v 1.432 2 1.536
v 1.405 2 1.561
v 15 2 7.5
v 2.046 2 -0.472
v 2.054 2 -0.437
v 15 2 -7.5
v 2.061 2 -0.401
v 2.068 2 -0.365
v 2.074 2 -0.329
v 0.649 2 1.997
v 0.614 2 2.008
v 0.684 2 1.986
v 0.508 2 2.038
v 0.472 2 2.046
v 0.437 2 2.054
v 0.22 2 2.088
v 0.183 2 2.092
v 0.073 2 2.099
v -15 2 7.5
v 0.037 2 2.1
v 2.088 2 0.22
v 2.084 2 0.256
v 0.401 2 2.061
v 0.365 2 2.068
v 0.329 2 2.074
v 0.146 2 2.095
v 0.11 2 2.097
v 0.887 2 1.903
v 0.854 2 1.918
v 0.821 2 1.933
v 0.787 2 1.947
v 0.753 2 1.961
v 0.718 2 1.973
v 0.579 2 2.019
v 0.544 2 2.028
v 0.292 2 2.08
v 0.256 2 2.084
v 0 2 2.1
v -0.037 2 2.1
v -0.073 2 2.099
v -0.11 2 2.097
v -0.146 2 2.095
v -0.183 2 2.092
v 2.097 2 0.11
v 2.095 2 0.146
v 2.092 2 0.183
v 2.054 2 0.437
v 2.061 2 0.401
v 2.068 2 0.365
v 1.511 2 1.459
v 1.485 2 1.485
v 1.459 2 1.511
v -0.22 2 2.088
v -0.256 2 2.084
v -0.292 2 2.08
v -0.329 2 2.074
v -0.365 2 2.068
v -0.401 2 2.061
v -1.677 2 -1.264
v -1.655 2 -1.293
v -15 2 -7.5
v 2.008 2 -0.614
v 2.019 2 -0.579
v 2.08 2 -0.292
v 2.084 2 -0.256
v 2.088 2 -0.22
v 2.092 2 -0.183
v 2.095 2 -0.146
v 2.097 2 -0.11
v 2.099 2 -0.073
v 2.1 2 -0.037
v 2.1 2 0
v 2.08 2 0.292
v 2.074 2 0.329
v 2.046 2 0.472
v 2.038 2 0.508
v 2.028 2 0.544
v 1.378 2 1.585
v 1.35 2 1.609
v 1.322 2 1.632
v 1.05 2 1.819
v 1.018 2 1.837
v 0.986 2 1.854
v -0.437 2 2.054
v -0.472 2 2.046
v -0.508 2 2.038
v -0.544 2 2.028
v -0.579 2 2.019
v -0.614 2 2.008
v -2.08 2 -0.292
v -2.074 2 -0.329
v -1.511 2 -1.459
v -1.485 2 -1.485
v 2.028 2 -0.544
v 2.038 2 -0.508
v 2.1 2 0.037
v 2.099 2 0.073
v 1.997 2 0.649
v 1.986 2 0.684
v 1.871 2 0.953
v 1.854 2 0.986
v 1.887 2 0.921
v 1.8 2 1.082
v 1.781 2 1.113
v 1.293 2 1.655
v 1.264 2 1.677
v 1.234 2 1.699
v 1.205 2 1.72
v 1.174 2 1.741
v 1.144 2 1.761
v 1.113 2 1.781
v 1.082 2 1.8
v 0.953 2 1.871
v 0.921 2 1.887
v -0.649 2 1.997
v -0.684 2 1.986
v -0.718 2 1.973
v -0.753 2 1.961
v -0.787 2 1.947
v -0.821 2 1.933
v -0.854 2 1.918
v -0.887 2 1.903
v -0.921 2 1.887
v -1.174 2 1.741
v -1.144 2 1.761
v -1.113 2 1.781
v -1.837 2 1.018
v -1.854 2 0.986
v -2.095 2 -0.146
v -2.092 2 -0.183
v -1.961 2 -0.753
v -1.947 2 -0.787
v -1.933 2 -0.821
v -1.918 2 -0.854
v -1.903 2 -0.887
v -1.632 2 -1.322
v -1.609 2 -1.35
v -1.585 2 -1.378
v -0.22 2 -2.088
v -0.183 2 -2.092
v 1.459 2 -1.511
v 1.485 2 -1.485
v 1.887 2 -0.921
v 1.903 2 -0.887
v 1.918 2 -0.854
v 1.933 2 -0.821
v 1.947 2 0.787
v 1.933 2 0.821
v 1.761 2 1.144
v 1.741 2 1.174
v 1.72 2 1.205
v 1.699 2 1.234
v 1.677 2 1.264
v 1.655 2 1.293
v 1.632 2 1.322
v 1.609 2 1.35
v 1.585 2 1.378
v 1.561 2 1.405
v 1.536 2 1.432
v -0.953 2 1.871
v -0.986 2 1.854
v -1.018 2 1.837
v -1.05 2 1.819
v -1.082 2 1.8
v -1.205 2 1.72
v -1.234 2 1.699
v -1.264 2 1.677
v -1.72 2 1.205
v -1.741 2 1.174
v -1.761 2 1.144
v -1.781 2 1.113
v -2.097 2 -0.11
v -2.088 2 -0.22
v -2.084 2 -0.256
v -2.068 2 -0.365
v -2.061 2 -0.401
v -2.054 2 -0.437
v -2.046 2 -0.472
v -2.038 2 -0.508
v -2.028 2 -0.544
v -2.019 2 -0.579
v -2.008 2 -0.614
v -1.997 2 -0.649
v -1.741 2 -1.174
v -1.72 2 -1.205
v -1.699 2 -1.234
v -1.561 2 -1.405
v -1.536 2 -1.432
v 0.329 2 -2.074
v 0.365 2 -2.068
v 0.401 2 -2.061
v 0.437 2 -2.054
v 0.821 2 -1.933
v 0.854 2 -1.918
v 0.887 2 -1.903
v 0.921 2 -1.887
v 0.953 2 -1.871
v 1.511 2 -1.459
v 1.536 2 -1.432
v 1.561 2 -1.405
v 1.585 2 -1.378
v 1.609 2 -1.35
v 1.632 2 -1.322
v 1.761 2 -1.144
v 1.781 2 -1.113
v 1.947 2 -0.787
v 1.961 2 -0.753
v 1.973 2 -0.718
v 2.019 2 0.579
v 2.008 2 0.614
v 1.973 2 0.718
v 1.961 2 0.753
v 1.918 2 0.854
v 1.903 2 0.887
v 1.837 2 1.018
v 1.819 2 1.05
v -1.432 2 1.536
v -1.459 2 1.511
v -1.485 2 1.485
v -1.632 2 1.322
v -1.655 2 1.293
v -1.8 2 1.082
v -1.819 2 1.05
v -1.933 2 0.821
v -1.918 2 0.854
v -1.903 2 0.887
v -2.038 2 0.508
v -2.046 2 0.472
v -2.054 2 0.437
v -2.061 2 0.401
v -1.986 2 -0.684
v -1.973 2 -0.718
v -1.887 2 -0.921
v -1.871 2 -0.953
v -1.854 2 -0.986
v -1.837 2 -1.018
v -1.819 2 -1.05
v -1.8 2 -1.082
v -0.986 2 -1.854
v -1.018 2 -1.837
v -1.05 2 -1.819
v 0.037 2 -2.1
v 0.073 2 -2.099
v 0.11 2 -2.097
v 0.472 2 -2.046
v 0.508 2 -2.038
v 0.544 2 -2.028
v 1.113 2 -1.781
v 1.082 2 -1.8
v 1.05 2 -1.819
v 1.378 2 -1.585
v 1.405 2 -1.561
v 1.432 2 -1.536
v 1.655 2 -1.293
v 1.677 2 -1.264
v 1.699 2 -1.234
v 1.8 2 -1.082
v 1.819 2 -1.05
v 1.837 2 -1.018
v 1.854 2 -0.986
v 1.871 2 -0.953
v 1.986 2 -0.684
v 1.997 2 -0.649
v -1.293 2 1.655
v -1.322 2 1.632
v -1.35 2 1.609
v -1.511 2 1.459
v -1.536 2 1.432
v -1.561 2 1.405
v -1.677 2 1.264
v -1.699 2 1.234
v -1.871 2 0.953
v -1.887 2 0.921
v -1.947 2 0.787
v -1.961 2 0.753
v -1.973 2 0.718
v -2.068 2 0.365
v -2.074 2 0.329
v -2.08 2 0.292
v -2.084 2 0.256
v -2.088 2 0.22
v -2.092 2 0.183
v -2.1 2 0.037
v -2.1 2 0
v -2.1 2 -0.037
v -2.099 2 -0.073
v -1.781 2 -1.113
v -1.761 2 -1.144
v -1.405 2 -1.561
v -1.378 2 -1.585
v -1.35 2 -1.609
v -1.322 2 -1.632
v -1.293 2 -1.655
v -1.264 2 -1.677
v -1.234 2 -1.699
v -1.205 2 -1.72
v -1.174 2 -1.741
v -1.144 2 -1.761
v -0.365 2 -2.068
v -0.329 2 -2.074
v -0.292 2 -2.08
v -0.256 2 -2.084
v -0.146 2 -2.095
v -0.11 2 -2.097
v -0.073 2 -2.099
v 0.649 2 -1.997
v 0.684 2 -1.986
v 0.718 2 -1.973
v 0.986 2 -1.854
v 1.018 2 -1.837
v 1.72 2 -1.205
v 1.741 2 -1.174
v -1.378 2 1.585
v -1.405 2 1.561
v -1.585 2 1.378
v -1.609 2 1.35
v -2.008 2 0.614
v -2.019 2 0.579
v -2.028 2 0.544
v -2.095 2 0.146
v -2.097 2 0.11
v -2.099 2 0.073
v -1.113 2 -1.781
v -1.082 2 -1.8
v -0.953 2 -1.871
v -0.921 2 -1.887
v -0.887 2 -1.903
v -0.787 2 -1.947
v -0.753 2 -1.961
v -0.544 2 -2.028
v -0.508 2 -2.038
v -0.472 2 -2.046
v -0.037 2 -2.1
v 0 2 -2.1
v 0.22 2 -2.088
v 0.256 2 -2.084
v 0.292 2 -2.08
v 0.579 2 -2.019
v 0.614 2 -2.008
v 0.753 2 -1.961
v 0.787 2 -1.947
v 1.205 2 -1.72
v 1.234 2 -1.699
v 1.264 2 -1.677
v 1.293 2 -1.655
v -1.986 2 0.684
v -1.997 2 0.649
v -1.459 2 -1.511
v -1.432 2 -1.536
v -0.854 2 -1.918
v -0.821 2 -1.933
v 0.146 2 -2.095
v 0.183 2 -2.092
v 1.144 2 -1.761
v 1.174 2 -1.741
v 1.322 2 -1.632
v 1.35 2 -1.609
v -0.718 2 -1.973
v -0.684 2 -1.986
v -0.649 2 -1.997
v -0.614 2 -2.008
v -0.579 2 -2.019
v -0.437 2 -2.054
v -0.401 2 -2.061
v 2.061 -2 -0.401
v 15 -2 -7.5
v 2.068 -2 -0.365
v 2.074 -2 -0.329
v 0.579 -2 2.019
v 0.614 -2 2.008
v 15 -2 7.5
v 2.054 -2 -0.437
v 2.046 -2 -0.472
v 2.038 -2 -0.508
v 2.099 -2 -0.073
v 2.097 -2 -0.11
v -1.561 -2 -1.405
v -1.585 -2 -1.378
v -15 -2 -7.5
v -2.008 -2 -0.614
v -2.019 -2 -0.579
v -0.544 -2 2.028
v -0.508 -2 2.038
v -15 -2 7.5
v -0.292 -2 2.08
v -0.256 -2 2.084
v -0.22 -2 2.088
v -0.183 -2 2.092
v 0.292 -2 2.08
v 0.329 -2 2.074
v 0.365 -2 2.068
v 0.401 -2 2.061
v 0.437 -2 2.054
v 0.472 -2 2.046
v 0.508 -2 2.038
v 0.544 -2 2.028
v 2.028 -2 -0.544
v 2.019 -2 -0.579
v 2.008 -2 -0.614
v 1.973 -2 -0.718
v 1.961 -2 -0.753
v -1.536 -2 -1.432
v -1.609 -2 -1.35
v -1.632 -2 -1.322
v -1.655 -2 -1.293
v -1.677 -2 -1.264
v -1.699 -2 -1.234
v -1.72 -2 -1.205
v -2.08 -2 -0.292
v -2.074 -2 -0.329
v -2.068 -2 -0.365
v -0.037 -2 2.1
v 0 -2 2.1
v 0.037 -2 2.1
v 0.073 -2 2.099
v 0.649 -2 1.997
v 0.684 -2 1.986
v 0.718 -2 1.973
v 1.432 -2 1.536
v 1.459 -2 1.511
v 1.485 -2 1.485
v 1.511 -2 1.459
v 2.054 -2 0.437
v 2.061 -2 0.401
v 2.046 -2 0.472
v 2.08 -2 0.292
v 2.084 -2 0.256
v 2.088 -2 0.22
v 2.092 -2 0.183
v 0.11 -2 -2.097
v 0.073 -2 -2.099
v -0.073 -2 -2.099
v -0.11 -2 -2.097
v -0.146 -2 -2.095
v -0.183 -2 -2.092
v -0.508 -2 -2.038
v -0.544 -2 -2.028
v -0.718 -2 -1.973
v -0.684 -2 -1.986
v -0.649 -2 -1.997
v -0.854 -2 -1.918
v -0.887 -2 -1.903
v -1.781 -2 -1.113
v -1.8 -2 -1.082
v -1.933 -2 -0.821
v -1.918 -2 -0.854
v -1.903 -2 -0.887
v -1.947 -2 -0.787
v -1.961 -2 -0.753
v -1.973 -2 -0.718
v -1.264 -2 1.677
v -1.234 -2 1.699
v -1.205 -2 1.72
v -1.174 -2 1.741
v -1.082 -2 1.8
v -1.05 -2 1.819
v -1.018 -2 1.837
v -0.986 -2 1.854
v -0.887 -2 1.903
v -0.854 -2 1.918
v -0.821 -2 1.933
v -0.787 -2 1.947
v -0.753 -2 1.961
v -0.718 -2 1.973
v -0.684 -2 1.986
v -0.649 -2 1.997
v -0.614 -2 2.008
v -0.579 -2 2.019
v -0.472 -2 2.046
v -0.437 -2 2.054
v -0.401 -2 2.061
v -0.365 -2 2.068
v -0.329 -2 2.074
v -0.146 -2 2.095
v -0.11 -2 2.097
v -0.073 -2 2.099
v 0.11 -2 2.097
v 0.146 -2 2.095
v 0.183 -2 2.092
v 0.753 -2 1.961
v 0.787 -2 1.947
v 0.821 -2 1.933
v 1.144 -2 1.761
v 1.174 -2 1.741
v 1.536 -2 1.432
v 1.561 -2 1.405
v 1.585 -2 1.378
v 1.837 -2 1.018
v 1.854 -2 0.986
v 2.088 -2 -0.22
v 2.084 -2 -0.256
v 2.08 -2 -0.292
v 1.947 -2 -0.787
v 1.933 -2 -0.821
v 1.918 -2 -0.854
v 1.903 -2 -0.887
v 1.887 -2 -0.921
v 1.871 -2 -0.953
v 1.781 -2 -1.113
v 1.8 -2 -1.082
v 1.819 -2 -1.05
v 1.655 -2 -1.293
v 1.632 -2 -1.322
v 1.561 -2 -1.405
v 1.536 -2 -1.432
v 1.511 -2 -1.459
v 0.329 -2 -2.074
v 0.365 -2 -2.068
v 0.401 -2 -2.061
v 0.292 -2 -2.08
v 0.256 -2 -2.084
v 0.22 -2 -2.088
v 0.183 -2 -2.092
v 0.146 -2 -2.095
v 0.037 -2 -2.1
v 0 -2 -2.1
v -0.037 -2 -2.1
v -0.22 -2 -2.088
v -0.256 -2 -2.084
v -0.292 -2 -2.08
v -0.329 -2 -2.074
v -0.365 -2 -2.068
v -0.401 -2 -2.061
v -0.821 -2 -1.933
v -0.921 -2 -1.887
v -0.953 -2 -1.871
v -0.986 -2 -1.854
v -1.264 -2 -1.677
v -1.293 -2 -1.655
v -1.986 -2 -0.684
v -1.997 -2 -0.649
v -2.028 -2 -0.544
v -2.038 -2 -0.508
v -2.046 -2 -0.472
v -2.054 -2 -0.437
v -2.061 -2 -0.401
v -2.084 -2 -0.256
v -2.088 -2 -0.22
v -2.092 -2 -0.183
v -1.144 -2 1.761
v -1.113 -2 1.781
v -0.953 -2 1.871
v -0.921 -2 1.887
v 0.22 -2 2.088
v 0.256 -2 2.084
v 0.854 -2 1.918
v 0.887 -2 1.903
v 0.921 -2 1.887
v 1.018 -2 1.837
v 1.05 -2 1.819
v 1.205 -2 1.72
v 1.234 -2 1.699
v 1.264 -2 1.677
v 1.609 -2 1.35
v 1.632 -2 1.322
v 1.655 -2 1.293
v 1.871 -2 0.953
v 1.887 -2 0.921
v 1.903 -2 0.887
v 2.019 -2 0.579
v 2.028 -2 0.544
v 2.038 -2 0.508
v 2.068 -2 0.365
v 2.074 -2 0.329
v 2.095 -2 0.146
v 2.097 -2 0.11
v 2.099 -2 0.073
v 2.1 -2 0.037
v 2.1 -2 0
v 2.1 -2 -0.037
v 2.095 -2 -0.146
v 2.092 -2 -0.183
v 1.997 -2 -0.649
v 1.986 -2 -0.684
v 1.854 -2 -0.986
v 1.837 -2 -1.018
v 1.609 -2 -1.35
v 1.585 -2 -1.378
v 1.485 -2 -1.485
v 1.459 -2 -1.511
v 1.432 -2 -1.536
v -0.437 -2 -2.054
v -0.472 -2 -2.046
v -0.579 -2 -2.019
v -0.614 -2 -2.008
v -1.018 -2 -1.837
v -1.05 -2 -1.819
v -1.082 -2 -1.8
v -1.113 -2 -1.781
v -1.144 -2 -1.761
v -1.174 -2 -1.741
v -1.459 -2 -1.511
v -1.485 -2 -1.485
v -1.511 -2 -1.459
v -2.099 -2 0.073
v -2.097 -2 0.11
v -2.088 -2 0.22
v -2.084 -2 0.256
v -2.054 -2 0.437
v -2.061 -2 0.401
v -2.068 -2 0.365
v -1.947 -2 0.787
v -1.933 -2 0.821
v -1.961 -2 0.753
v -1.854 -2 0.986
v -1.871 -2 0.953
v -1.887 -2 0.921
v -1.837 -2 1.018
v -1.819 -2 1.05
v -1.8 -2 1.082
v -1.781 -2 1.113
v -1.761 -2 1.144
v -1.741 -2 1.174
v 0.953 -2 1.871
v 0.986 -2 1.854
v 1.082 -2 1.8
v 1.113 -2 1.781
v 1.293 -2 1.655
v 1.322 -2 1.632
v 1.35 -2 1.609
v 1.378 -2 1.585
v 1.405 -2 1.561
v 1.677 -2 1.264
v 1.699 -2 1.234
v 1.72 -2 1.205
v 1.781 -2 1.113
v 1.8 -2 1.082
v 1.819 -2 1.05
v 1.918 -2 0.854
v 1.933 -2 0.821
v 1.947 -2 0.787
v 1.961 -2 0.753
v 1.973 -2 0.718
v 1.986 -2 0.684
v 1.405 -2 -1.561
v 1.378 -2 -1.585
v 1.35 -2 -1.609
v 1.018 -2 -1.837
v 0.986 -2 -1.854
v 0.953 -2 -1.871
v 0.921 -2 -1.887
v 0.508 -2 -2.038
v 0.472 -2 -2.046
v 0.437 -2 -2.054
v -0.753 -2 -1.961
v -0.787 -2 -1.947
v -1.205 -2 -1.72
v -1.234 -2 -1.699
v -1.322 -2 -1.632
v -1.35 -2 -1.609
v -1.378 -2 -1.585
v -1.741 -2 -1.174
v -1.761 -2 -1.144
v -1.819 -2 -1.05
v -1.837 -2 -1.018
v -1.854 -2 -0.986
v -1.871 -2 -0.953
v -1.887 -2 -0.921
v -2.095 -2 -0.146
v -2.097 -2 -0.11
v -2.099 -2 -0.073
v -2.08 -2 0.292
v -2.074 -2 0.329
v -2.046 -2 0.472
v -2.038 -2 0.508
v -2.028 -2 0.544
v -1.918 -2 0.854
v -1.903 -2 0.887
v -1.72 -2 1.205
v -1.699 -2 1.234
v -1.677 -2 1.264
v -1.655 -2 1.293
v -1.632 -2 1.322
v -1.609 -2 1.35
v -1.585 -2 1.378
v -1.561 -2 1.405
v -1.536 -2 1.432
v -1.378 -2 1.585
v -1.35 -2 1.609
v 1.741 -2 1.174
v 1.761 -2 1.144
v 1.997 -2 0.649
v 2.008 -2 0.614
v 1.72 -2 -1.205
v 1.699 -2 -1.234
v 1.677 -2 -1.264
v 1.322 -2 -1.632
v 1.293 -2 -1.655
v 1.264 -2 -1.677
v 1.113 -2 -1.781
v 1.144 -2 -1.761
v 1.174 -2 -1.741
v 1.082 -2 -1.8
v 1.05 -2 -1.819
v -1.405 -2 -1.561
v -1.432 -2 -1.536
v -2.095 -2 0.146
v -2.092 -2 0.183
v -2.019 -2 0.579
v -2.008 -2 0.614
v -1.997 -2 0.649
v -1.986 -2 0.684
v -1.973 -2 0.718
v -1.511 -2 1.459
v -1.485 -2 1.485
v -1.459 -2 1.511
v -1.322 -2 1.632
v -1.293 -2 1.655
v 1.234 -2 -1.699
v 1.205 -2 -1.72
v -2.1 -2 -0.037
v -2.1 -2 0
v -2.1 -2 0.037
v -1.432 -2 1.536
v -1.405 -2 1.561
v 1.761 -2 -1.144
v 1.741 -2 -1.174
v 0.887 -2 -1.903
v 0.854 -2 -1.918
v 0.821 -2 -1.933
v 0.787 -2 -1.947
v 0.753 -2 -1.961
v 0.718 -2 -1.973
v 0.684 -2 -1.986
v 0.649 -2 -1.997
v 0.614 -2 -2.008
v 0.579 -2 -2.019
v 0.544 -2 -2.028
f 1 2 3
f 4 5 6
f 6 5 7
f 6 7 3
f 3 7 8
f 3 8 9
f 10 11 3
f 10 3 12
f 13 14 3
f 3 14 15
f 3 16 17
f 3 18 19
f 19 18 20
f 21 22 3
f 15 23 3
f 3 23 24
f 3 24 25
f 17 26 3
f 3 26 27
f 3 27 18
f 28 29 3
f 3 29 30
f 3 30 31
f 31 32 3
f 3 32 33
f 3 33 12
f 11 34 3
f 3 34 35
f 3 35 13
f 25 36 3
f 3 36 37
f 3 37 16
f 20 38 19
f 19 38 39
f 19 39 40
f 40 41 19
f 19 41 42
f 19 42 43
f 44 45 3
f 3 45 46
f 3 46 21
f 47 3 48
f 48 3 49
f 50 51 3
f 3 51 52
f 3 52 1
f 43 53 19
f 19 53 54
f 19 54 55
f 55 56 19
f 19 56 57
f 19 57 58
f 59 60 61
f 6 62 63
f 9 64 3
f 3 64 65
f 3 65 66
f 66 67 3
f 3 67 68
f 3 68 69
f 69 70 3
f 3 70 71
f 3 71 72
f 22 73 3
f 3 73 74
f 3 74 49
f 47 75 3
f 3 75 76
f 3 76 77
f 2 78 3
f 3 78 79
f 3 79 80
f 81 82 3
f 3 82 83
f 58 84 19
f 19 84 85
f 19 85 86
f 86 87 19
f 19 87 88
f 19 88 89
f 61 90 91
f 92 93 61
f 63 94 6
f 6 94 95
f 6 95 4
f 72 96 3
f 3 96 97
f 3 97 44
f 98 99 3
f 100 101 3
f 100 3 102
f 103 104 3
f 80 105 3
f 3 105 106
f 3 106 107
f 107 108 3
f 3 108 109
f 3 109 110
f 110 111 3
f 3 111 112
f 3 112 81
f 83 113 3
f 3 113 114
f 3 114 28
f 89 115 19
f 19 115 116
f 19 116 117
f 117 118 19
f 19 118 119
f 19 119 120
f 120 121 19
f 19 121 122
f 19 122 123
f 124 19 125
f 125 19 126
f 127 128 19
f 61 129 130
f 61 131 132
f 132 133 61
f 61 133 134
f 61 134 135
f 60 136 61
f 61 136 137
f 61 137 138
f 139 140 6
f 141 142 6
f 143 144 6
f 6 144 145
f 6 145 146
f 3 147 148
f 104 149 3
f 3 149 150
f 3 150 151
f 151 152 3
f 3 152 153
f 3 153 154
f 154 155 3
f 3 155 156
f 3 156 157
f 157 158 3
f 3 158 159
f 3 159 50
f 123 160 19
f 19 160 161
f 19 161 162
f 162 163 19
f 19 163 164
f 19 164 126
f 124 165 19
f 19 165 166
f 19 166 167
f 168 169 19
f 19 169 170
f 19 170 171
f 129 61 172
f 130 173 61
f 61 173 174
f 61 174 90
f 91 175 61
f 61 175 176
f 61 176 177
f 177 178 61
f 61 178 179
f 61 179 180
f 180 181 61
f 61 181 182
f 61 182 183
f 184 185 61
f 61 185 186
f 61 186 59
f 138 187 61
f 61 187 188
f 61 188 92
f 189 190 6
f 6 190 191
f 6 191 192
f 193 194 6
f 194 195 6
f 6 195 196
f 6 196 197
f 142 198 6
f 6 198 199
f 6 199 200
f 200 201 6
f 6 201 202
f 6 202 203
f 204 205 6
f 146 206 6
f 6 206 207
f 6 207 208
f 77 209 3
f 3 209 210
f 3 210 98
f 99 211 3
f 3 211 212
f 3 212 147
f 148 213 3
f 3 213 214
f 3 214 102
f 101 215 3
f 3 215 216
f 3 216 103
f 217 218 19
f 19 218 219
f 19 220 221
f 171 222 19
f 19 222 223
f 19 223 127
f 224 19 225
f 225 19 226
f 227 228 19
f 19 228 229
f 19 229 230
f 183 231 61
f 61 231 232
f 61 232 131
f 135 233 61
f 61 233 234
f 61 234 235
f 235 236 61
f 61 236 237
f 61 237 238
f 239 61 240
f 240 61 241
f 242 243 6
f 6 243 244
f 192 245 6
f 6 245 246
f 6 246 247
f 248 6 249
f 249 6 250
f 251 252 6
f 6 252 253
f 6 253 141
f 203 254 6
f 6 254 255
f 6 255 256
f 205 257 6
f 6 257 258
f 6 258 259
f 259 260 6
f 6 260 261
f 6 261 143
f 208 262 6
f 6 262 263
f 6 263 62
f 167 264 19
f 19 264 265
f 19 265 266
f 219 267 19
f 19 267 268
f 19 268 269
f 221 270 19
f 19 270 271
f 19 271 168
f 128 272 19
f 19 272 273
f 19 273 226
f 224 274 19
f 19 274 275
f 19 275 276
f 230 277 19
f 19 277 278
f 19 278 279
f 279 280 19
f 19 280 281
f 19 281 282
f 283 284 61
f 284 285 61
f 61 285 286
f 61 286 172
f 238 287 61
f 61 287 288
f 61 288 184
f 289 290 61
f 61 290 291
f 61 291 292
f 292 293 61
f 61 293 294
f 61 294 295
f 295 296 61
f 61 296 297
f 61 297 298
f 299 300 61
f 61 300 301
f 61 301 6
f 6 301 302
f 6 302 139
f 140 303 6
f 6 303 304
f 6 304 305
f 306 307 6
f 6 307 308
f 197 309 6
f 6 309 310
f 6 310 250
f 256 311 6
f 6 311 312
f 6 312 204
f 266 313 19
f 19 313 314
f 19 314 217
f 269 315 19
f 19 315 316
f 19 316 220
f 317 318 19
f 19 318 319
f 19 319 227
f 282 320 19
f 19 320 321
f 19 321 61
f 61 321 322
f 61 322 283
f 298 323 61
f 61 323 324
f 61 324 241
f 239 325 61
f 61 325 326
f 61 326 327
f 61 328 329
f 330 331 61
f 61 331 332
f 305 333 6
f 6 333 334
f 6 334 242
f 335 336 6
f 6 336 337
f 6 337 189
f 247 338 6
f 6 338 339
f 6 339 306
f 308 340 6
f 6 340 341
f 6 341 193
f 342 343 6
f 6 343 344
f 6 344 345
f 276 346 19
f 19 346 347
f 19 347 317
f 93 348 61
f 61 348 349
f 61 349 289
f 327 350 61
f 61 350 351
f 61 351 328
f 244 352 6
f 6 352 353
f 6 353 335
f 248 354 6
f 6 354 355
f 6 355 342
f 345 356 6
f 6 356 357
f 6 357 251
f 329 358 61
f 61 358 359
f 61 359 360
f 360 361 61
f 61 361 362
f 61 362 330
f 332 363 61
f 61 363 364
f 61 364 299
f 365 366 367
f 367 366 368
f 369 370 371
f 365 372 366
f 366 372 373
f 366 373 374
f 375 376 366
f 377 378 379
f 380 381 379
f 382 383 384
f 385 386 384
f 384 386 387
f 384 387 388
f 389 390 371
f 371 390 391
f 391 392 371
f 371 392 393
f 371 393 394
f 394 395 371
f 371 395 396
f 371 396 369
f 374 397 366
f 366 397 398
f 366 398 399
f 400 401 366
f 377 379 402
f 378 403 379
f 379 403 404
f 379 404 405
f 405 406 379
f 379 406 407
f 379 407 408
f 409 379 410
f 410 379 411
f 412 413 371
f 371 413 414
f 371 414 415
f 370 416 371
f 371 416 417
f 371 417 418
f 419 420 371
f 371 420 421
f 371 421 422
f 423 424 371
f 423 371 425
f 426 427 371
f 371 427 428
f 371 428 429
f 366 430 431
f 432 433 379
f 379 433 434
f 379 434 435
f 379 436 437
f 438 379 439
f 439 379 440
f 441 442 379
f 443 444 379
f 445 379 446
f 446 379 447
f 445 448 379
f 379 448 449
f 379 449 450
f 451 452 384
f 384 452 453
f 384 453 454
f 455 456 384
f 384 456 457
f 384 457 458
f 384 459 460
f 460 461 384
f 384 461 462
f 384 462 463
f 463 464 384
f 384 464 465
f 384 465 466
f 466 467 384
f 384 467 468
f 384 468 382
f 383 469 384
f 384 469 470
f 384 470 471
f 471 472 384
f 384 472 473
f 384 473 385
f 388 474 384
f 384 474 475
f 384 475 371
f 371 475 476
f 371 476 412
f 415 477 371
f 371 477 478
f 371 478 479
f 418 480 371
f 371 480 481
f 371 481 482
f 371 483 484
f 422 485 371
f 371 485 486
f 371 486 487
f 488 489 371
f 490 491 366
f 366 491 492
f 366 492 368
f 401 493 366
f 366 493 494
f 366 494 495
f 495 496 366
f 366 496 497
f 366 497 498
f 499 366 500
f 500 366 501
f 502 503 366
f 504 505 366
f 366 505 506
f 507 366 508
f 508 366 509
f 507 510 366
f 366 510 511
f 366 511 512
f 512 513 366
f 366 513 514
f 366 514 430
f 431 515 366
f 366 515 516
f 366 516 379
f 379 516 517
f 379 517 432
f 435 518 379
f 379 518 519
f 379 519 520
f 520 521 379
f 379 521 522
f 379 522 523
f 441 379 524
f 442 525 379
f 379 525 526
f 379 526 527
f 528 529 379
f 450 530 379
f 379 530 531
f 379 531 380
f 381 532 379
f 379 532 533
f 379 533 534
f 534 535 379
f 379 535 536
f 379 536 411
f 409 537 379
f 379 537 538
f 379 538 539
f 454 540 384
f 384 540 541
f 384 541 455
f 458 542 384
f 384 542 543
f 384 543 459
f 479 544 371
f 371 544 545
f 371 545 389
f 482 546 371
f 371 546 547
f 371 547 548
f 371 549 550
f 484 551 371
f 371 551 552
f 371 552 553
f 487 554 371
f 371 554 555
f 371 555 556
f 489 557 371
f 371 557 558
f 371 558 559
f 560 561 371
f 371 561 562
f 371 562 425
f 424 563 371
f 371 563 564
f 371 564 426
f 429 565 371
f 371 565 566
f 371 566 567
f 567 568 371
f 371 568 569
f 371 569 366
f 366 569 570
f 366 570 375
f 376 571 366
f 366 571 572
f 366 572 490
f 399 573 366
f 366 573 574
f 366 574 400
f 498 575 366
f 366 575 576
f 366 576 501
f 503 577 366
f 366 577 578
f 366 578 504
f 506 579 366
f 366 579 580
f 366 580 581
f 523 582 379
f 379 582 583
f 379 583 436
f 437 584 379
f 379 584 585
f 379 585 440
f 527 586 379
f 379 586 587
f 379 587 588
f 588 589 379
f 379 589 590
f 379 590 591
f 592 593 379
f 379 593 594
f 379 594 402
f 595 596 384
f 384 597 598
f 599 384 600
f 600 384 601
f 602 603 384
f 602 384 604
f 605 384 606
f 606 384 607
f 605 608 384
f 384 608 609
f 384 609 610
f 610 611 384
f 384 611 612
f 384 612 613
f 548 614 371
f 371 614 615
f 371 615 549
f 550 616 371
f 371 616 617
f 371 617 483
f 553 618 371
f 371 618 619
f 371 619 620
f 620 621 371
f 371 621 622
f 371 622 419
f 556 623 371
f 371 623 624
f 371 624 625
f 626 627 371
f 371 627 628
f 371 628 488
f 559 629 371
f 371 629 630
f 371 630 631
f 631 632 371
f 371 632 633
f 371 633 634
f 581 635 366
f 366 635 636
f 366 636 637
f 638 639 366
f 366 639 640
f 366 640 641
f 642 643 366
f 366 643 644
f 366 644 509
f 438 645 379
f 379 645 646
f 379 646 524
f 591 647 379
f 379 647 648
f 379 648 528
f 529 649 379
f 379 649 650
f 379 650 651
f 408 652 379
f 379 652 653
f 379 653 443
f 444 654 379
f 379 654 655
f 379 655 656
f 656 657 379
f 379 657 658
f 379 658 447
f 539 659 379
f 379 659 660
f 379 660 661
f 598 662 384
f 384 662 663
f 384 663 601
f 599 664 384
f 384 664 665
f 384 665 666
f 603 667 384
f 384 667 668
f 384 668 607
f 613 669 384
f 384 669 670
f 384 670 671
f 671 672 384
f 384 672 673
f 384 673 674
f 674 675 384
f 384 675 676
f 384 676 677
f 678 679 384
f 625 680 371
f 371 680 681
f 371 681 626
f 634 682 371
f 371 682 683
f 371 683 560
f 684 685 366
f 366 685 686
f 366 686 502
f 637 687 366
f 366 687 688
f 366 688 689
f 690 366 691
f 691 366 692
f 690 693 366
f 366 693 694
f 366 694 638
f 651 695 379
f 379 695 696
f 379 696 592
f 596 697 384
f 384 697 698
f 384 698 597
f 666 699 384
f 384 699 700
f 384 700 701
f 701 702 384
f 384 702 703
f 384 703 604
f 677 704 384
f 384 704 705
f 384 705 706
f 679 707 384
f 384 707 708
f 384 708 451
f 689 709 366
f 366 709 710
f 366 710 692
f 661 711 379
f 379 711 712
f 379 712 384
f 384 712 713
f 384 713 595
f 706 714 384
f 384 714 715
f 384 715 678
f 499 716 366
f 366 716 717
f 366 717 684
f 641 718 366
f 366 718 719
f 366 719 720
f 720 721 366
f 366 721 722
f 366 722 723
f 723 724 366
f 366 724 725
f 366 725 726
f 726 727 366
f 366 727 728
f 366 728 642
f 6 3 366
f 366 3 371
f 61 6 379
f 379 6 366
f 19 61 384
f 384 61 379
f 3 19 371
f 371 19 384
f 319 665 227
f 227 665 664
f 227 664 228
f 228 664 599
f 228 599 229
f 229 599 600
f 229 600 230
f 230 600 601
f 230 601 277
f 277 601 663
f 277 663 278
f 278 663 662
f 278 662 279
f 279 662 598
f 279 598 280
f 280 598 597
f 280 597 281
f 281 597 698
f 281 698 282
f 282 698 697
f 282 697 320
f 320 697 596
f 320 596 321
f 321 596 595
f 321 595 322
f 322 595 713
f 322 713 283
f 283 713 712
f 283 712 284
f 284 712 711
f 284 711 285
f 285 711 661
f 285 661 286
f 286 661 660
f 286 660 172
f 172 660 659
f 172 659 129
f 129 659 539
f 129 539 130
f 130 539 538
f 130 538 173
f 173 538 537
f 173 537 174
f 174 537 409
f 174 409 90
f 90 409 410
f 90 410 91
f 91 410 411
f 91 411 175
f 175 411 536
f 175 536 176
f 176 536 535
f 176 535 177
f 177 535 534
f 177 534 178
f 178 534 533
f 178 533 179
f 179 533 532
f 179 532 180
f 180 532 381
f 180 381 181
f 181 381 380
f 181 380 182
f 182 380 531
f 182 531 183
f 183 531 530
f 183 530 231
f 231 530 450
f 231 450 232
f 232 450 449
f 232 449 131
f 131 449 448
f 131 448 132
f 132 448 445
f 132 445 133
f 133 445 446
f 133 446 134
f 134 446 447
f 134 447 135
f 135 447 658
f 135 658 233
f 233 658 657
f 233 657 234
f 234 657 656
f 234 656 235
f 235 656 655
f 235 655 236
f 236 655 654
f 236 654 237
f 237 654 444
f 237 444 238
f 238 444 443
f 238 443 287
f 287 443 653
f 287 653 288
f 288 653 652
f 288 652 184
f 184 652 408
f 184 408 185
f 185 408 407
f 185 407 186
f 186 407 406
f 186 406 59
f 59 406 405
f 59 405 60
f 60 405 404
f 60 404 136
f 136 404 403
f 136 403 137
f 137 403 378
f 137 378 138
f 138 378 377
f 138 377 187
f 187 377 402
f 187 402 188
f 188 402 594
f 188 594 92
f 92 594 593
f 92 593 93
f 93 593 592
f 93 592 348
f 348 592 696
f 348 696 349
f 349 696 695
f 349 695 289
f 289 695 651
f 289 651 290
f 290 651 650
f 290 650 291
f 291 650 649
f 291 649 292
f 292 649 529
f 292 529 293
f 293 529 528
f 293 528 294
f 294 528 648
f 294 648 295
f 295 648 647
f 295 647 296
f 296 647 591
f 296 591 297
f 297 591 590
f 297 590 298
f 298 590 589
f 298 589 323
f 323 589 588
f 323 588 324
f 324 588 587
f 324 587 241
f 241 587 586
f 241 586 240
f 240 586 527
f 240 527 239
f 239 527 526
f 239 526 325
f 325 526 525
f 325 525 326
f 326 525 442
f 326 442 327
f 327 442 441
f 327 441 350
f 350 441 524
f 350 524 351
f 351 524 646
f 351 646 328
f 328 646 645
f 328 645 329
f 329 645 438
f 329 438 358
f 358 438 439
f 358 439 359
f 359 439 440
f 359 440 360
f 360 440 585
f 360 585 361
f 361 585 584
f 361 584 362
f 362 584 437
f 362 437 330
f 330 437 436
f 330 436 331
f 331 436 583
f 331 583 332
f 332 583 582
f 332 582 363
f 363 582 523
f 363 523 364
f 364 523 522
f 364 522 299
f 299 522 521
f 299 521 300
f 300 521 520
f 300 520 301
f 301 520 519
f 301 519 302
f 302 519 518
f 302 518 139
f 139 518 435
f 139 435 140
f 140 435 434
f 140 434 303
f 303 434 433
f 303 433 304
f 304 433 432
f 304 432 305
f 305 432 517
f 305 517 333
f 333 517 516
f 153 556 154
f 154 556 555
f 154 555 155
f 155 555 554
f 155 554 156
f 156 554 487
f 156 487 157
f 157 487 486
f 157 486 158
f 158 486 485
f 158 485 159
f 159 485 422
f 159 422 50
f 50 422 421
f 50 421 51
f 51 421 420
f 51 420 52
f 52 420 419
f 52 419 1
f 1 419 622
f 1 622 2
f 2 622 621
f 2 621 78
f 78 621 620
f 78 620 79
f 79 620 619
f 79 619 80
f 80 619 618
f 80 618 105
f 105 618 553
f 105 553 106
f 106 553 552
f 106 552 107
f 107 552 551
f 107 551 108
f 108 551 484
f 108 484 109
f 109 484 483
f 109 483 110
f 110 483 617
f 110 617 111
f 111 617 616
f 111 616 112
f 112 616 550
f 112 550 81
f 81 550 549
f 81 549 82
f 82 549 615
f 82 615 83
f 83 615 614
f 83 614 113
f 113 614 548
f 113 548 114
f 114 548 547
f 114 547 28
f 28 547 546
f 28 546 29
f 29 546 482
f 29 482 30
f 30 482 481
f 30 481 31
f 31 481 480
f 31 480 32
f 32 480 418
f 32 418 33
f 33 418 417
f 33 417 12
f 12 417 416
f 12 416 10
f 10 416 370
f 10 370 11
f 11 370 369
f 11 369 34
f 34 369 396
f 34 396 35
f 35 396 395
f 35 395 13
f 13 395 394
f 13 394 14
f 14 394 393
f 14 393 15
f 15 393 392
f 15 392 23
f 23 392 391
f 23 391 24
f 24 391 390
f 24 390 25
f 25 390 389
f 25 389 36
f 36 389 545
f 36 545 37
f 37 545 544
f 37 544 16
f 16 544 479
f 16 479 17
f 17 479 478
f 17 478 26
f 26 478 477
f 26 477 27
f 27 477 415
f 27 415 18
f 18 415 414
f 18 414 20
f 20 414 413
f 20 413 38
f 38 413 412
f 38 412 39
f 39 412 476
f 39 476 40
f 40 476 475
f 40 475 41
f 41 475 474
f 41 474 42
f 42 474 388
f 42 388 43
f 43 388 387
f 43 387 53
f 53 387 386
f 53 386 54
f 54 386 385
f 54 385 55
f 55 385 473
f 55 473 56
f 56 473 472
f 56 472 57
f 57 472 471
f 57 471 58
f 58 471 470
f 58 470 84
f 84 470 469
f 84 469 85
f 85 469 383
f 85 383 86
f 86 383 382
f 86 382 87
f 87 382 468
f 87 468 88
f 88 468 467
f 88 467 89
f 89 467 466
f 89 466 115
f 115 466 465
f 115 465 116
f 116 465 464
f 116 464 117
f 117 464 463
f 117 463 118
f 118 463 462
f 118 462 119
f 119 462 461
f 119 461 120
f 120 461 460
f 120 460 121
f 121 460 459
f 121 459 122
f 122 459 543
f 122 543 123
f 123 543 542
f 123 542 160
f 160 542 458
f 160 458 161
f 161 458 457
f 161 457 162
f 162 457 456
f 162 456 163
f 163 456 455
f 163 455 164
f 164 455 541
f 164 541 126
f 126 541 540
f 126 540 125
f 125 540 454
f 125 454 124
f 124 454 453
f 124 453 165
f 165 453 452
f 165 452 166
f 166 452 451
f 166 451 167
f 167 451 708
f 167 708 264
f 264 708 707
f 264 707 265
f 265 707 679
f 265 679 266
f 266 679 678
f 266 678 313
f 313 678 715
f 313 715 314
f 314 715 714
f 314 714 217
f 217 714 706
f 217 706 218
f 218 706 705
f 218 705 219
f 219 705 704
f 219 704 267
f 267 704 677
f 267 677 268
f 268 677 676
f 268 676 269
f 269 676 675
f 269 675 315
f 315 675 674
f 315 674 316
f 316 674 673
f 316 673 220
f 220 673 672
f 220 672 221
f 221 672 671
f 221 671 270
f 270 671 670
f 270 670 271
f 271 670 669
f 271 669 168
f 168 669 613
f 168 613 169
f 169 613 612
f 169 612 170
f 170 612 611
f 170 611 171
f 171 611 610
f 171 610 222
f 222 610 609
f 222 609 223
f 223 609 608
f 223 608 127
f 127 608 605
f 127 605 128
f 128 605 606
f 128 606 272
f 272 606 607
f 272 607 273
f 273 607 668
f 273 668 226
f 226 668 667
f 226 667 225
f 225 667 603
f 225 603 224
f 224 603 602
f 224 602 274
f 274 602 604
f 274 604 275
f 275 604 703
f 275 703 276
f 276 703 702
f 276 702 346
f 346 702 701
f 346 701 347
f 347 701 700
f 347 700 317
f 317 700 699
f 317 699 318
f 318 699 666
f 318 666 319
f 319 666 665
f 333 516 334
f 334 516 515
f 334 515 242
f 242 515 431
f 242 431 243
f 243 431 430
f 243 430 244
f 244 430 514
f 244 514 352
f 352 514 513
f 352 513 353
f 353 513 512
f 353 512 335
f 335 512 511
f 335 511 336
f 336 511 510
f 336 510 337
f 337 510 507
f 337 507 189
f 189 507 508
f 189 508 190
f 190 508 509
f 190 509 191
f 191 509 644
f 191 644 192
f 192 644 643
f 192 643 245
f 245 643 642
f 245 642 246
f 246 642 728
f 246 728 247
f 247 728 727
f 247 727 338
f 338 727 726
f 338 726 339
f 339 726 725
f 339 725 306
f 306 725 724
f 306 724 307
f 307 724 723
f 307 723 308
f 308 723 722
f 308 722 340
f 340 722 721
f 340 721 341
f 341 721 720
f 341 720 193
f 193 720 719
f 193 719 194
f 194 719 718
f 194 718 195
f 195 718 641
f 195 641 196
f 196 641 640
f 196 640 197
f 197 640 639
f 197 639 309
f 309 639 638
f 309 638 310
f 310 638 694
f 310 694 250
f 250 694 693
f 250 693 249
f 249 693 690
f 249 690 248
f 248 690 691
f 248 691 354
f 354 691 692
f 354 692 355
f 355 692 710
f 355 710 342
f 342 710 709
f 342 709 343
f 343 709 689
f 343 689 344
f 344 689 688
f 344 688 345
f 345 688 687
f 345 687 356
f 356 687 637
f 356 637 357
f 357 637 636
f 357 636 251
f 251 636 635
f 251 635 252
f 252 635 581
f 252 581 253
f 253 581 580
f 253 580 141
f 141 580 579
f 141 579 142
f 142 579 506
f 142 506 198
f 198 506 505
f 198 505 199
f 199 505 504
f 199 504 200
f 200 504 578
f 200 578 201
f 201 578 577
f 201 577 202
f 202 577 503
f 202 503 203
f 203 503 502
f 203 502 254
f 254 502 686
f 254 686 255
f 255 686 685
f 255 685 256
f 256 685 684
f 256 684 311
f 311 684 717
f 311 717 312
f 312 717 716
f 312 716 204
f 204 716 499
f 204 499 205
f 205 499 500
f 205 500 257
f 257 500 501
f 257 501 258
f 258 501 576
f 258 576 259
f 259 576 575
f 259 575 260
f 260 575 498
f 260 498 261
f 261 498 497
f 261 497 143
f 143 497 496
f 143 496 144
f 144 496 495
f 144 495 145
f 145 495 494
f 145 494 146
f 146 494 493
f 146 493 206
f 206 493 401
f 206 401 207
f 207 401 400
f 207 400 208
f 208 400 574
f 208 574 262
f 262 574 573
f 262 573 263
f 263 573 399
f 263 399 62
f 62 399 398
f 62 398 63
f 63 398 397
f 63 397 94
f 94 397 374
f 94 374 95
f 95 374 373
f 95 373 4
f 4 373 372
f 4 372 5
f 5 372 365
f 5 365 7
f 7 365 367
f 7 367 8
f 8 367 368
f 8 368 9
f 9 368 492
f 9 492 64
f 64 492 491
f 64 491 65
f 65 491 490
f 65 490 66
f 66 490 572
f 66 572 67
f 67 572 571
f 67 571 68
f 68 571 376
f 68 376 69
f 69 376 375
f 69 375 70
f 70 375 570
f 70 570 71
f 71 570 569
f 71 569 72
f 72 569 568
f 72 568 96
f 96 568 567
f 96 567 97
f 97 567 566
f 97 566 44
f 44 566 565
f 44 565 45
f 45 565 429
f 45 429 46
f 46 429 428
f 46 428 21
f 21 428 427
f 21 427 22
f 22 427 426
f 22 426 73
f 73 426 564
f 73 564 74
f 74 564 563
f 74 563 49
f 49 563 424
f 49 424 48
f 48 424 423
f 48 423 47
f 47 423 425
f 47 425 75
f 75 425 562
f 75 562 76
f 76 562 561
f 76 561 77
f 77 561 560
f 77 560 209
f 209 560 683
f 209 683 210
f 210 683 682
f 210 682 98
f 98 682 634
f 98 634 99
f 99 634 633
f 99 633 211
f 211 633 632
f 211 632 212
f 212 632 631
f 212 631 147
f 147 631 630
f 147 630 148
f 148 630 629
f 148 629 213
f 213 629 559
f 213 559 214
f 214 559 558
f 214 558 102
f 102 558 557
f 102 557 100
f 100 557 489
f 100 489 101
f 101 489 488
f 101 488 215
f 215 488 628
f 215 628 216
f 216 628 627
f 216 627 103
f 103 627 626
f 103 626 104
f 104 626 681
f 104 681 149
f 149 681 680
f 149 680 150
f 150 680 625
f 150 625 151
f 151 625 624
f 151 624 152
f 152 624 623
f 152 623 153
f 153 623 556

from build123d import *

# Parameters (mm, degrees)
SKIZZE1_W                       = 30
SKIZZE1_H                       = 15
SKIZZE1_R                       = 2.1
AUFSATZ_LINEAR_AUSTRAGEN1_DEPTH = 2


with BuildPart() as part:
    # Skizze1 → Aufsatz-Linear austragen1 (new body, symmetric)
    with BuildSketch(Plane(origin=(0, 0, 0), x_dir=(1, 0, 0), z_dir=(0, 1, 0))):
        Rectangle(SKIZZE1_W, SKIZZE1_H)
        Circle(SKIZZE1_R, mode=Mode.SUBTRACT)
    extrude(amount=AUFSATZ_LINEAR_AUSTRAGEN1_DEPTH, both=True)


solid = part.part
